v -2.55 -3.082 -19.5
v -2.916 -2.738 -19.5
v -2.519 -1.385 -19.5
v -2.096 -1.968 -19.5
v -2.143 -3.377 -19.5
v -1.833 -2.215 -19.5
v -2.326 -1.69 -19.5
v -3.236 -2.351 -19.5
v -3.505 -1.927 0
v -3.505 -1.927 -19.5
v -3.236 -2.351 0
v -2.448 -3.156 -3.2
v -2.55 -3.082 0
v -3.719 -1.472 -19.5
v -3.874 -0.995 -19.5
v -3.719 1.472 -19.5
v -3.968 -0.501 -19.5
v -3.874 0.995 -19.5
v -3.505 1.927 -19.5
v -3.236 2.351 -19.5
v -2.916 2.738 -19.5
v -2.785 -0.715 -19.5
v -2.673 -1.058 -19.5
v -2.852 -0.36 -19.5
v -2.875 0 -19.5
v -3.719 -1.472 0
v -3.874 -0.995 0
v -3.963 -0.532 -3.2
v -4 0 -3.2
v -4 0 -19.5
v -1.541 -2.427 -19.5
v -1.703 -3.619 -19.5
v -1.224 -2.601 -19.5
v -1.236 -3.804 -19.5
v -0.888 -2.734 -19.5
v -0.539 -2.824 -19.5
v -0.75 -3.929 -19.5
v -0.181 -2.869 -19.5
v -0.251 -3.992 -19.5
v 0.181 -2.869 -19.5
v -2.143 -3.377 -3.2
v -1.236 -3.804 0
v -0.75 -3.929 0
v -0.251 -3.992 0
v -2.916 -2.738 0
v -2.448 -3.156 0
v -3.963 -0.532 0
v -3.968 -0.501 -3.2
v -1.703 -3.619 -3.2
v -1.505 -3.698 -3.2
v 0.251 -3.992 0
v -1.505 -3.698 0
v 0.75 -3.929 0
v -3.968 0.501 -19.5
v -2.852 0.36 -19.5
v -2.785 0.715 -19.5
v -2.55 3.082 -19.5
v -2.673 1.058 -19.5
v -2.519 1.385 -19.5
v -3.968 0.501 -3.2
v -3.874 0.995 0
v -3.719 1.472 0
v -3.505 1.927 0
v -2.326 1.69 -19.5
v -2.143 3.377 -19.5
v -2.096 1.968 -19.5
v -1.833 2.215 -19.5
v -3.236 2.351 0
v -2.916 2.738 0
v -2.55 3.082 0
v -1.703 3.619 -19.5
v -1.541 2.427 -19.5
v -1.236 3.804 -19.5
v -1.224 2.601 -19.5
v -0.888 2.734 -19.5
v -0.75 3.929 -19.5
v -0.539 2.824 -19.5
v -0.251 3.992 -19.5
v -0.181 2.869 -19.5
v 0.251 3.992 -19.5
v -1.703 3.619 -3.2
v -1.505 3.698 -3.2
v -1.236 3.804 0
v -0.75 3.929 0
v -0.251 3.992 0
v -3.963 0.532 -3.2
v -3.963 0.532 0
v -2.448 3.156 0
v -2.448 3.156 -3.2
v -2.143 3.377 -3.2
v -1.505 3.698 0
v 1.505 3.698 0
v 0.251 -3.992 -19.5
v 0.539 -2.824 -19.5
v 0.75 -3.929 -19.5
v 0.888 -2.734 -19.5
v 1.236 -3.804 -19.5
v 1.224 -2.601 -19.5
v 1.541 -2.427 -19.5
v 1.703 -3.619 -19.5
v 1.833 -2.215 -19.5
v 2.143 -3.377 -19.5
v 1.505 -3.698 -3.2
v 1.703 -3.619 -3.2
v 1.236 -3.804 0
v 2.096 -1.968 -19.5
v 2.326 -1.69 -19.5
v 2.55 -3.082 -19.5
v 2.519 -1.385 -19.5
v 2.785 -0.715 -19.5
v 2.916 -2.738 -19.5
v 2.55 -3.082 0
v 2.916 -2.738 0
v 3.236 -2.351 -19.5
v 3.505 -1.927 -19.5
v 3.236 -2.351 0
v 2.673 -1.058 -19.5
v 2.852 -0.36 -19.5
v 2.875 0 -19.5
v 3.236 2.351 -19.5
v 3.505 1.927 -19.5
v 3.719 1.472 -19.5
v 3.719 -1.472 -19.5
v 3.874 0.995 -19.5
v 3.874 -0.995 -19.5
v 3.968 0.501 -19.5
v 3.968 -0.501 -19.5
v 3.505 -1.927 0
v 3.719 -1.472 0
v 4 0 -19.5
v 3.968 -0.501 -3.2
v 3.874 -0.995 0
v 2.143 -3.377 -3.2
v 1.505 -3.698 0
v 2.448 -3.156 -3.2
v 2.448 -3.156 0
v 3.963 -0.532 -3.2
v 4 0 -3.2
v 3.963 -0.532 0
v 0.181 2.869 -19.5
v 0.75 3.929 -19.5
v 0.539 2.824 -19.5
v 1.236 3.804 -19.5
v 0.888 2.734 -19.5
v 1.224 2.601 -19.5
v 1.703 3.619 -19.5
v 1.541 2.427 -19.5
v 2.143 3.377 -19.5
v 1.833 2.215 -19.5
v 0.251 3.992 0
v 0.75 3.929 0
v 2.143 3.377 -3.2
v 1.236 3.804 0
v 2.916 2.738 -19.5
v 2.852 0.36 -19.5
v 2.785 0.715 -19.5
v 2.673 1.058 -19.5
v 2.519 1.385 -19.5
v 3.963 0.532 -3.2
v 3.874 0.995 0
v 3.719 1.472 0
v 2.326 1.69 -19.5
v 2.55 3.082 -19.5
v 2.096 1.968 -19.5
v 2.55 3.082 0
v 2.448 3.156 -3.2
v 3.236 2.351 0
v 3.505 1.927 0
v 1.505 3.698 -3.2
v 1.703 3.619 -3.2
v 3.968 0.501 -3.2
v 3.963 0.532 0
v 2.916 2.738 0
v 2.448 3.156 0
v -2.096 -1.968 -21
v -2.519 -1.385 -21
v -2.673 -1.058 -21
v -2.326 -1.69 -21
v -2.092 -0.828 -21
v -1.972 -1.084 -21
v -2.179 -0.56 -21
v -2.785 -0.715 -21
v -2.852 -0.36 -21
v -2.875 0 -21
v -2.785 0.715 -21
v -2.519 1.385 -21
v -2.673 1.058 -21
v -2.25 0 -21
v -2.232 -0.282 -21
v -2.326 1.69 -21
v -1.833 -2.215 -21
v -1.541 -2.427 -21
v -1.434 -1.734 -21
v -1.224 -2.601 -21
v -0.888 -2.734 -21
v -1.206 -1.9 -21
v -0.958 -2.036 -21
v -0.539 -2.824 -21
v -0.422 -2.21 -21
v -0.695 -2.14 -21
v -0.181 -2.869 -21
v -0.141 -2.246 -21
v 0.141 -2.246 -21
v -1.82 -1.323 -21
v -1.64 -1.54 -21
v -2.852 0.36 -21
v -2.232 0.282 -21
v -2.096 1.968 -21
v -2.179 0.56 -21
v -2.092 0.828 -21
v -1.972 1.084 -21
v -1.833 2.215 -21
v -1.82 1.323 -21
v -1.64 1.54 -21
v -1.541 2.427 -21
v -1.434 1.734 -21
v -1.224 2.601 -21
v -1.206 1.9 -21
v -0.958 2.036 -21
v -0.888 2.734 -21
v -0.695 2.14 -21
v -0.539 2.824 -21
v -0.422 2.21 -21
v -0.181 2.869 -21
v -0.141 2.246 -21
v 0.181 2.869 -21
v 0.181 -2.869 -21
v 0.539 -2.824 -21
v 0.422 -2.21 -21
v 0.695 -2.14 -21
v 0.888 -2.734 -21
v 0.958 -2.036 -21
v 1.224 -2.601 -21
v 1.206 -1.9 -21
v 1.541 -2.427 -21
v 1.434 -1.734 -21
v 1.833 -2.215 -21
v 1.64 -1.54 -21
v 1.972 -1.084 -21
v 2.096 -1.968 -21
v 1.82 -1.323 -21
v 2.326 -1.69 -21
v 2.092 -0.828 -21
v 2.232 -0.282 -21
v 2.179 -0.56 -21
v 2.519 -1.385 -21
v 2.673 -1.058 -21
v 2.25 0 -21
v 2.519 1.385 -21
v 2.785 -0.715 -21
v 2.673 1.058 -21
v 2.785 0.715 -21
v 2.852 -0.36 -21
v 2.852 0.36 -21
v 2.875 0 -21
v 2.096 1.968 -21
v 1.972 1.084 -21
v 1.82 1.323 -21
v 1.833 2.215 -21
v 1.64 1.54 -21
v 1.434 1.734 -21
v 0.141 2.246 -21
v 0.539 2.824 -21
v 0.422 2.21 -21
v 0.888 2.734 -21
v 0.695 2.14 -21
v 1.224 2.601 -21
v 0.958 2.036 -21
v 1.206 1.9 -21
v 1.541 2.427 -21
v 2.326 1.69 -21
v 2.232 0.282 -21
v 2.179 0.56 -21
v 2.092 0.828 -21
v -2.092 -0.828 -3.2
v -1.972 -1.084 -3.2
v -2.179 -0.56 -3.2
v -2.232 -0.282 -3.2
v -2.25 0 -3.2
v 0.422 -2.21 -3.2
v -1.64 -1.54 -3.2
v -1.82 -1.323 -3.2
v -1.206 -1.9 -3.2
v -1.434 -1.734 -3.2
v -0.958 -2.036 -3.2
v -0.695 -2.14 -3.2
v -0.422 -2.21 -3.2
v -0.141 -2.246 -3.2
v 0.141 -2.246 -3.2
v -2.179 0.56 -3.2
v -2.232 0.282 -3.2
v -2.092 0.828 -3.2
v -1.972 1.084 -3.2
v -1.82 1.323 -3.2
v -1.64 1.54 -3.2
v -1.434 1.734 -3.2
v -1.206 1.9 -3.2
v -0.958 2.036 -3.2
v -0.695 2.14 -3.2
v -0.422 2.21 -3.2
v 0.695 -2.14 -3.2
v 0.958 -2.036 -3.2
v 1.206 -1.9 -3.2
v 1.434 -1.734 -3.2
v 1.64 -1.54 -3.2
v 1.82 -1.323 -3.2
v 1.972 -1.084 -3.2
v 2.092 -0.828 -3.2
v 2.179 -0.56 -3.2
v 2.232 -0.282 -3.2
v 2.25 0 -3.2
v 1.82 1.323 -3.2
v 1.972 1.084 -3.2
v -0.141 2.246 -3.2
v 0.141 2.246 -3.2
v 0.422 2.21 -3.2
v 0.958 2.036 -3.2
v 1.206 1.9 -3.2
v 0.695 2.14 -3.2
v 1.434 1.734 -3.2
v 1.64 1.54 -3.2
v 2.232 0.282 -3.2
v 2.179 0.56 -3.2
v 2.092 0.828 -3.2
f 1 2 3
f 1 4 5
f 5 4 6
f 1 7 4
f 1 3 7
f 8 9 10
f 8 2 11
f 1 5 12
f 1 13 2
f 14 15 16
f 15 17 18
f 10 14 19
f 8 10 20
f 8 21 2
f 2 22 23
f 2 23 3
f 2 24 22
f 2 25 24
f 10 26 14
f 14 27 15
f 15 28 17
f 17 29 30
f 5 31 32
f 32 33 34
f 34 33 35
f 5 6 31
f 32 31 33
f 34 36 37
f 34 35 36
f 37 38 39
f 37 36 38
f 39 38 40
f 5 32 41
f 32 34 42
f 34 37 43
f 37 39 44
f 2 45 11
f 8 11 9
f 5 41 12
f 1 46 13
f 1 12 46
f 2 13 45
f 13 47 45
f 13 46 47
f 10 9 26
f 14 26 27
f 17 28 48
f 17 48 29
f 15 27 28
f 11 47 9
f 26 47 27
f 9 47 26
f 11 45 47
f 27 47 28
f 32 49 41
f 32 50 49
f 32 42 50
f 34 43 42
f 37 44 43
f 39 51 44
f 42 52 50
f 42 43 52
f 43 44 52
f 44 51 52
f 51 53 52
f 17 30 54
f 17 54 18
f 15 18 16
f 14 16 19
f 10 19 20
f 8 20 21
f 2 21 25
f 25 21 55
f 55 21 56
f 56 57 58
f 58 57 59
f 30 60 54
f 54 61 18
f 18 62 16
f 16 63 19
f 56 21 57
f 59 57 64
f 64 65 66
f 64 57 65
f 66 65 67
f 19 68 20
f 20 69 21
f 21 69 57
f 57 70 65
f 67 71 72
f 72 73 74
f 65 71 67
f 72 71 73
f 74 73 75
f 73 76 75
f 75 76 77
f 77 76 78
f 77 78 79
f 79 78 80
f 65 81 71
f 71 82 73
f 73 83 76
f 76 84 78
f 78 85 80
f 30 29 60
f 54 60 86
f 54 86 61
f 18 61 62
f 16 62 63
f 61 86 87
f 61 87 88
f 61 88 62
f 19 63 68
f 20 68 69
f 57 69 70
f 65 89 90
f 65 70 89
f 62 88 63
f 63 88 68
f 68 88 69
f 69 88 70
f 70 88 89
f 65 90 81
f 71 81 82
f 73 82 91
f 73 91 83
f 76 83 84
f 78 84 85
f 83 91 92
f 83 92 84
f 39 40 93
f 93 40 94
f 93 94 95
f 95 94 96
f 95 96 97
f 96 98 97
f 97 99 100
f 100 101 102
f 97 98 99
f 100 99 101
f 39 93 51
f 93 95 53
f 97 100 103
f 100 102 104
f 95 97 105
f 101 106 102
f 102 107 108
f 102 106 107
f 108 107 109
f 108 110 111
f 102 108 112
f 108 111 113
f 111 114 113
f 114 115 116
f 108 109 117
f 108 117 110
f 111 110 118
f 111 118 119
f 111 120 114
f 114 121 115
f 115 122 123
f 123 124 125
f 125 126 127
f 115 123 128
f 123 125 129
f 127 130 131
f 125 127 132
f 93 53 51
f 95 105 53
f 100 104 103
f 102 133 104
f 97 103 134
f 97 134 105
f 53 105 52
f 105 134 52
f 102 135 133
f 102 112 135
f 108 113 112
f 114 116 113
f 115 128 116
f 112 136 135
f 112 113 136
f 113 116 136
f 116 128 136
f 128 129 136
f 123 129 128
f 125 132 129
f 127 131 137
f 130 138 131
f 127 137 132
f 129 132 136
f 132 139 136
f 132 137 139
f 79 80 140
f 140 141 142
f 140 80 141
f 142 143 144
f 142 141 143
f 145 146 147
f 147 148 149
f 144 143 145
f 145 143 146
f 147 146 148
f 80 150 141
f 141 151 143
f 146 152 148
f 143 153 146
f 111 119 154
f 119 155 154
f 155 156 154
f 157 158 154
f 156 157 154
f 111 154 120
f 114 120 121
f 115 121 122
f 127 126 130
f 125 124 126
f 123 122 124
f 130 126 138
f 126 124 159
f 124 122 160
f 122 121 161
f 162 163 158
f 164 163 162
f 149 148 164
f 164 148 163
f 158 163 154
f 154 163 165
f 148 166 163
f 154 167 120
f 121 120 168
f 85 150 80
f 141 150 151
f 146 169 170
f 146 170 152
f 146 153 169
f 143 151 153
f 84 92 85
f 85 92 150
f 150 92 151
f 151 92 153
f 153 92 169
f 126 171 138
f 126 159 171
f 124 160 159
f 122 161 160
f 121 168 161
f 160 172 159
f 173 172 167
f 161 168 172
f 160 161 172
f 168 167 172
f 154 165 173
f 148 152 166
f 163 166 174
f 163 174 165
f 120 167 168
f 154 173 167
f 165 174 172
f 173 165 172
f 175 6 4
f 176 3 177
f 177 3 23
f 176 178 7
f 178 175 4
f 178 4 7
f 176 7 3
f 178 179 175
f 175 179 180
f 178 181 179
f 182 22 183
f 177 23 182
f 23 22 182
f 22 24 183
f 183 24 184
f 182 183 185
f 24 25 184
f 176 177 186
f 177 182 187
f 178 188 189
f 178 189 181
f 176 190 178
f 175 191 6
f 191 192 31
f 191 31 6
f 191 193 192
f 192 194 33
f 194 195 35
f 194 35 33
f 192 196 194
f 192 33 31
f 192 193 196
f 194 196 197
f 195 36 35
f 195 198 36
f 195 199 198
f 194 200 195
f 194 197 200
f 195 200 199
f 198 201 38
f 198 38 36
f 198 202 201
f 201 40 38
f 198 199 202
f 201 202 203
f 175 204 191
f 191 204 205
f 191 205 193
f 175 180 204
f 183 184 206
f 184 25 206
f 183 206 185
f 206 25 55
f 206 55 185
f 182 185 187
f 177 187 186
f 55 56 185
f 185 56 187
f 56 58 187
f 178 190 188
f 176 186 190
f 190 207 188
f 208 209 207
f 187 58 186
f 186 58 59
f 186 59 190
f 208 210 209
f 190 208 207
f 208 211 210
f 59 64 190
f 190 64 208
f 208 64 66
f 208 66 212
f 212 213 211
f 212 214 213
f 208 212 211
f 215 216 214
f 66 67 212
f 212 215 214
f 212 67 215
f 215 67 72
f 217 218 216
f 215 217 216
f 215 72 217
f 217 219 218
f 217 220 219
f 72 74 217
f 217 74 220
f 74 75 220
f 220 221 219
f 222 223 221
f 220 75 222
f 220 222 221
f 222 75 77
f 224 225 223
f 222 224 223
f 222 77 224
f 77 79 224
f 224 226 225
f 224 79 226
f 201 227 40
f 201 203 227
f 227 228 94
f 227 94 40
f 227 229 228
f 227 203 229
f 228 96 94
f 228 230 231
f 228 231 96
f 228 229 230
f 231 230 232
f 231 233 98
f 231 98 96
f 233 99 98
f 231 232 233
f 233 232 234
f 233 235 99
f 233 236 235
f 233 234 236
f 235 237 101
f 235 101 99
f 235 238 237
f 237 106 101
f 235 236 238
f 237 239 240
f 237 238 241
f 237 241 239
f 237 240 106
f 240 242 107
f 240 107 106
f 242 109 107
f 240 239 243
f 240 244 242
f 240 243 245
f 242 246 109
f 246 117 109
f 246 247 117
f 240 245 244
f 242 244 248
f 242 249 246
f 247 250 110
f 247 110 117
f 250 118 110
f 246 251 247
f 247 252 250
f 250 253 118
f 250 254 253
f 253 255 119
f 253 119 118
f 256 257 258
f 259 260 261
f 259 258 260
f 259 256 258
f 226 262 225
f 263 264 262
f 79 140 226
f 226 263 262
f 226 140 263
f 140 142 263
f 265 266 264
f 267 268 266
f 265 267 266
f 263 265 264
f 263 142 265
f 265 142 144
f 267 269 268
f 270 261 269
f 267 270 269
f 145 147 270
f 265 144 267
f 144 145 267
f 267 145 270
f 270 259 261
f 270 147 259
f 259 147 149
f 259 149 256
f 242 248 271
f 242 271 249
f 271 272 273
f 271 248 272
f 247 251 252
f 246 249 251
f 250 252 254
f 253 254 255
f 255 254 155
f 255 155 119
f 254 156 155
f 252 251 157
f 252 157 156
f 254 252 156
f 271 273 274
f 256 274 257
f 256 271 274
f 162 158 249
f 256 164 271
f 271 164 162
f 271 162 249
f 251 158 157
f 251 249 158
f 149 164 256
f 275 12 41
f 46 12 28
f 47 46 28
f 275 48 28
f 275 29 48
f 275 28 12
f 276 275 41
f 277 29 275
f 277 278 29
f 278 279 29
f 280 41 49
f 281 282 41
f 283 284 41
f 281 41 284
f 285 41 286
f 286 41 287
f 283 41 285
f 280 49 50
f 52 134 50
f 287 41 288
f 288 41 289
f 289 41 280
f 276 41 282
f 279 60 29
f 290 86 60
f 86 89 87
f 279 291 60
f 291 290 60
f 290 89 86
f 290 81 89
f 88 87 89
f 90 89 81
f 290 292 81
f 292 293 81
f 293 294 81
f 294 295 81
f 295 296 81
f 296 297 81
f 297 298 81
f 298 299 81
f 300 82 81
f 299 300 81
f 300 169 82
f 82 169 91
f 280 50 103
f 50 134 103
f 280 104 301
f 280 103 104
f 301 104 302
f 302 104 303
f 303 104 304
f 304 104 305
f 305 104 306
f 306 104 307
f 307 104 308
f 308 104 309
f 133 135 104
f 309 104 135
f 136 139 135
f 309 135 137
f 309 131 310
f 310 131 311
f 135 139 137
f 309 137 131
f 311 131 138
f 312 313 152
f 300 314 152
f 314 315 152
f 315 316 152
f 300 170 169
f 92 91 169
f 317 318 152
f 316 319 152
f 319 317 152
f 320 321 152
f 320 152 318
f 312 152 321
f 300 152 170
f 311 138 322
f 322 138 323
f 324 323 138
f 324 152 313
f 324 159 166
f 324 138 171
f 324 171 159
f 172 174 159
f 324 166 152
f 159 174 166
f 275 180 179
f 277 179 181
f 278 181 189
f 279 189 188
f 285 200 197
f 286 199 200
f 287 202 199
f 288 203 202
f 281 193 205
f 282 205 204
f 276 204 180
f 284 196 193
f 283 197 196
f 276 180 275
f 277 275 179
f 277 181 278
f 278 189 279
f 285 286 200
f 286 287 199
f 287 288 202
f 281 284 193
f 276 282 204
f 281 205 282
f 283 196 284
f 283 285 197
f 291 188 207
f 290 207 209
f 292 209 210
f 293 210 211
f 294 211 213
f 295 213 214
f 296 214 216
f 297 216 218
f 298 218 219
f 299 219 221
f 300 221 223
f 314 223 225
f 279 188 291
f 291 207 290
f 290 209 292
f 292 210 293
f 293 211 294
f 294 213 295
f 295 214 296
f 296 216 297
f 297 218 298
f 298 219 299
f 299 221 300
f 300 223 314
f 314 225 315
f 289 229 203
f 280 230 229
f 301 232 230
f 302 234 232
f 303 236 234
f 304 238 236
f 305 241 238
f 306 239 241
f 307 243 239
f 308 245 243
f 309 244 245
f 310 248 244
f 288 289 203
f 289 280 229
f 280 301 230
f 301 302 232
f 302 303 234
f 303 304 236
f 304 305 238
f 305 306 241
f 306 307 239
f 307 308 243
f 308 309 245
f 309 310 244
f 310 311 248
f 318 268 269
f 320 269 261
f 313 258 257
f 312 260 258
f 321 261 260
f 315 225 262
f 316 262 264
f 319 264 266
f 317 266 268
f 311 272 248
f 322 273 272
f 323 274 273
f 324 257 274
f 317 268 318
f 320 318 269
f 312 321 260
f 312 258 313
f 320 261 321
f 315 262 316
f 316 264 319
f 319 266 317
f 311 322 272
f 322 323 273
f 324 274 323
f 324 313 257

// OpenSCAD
$fn = 50;

difference() {
	union() {
		translate(v = [0, 0, -19.5]) {
			cylinder(h = 19.5, r = 4.0);
		}
		#translate(v = [0, 0, -21.0]) {
			cylinder(h = 21, r = 2.875);
		}
	}
	union() {
		translate(v = [0, 0, 0]) {
			rotate(a = [0, 0, 0]) {
				difference() {
					union() {
						translate(v = [0, 0, -3.2]) {
							linear_extrude(height = 3.2) {
								polygon(points = [[4.2698, 0.0], [2.1349000000000005, 3.697755269078796], [-2.134899999999999, 3.6977552690787965], [-4.2698, 5.228996902999369e-16], [-2.134900000000002, -3.6977552690787956], [2.1348999999999974, -3.697755269078798]]);
							}
						}
					}
					union();
				}
			}
		}
		#translate(v = [0, 0, -100.0]) {
			cylinder(h = 200, r = 2.25);
		}
	}
}
